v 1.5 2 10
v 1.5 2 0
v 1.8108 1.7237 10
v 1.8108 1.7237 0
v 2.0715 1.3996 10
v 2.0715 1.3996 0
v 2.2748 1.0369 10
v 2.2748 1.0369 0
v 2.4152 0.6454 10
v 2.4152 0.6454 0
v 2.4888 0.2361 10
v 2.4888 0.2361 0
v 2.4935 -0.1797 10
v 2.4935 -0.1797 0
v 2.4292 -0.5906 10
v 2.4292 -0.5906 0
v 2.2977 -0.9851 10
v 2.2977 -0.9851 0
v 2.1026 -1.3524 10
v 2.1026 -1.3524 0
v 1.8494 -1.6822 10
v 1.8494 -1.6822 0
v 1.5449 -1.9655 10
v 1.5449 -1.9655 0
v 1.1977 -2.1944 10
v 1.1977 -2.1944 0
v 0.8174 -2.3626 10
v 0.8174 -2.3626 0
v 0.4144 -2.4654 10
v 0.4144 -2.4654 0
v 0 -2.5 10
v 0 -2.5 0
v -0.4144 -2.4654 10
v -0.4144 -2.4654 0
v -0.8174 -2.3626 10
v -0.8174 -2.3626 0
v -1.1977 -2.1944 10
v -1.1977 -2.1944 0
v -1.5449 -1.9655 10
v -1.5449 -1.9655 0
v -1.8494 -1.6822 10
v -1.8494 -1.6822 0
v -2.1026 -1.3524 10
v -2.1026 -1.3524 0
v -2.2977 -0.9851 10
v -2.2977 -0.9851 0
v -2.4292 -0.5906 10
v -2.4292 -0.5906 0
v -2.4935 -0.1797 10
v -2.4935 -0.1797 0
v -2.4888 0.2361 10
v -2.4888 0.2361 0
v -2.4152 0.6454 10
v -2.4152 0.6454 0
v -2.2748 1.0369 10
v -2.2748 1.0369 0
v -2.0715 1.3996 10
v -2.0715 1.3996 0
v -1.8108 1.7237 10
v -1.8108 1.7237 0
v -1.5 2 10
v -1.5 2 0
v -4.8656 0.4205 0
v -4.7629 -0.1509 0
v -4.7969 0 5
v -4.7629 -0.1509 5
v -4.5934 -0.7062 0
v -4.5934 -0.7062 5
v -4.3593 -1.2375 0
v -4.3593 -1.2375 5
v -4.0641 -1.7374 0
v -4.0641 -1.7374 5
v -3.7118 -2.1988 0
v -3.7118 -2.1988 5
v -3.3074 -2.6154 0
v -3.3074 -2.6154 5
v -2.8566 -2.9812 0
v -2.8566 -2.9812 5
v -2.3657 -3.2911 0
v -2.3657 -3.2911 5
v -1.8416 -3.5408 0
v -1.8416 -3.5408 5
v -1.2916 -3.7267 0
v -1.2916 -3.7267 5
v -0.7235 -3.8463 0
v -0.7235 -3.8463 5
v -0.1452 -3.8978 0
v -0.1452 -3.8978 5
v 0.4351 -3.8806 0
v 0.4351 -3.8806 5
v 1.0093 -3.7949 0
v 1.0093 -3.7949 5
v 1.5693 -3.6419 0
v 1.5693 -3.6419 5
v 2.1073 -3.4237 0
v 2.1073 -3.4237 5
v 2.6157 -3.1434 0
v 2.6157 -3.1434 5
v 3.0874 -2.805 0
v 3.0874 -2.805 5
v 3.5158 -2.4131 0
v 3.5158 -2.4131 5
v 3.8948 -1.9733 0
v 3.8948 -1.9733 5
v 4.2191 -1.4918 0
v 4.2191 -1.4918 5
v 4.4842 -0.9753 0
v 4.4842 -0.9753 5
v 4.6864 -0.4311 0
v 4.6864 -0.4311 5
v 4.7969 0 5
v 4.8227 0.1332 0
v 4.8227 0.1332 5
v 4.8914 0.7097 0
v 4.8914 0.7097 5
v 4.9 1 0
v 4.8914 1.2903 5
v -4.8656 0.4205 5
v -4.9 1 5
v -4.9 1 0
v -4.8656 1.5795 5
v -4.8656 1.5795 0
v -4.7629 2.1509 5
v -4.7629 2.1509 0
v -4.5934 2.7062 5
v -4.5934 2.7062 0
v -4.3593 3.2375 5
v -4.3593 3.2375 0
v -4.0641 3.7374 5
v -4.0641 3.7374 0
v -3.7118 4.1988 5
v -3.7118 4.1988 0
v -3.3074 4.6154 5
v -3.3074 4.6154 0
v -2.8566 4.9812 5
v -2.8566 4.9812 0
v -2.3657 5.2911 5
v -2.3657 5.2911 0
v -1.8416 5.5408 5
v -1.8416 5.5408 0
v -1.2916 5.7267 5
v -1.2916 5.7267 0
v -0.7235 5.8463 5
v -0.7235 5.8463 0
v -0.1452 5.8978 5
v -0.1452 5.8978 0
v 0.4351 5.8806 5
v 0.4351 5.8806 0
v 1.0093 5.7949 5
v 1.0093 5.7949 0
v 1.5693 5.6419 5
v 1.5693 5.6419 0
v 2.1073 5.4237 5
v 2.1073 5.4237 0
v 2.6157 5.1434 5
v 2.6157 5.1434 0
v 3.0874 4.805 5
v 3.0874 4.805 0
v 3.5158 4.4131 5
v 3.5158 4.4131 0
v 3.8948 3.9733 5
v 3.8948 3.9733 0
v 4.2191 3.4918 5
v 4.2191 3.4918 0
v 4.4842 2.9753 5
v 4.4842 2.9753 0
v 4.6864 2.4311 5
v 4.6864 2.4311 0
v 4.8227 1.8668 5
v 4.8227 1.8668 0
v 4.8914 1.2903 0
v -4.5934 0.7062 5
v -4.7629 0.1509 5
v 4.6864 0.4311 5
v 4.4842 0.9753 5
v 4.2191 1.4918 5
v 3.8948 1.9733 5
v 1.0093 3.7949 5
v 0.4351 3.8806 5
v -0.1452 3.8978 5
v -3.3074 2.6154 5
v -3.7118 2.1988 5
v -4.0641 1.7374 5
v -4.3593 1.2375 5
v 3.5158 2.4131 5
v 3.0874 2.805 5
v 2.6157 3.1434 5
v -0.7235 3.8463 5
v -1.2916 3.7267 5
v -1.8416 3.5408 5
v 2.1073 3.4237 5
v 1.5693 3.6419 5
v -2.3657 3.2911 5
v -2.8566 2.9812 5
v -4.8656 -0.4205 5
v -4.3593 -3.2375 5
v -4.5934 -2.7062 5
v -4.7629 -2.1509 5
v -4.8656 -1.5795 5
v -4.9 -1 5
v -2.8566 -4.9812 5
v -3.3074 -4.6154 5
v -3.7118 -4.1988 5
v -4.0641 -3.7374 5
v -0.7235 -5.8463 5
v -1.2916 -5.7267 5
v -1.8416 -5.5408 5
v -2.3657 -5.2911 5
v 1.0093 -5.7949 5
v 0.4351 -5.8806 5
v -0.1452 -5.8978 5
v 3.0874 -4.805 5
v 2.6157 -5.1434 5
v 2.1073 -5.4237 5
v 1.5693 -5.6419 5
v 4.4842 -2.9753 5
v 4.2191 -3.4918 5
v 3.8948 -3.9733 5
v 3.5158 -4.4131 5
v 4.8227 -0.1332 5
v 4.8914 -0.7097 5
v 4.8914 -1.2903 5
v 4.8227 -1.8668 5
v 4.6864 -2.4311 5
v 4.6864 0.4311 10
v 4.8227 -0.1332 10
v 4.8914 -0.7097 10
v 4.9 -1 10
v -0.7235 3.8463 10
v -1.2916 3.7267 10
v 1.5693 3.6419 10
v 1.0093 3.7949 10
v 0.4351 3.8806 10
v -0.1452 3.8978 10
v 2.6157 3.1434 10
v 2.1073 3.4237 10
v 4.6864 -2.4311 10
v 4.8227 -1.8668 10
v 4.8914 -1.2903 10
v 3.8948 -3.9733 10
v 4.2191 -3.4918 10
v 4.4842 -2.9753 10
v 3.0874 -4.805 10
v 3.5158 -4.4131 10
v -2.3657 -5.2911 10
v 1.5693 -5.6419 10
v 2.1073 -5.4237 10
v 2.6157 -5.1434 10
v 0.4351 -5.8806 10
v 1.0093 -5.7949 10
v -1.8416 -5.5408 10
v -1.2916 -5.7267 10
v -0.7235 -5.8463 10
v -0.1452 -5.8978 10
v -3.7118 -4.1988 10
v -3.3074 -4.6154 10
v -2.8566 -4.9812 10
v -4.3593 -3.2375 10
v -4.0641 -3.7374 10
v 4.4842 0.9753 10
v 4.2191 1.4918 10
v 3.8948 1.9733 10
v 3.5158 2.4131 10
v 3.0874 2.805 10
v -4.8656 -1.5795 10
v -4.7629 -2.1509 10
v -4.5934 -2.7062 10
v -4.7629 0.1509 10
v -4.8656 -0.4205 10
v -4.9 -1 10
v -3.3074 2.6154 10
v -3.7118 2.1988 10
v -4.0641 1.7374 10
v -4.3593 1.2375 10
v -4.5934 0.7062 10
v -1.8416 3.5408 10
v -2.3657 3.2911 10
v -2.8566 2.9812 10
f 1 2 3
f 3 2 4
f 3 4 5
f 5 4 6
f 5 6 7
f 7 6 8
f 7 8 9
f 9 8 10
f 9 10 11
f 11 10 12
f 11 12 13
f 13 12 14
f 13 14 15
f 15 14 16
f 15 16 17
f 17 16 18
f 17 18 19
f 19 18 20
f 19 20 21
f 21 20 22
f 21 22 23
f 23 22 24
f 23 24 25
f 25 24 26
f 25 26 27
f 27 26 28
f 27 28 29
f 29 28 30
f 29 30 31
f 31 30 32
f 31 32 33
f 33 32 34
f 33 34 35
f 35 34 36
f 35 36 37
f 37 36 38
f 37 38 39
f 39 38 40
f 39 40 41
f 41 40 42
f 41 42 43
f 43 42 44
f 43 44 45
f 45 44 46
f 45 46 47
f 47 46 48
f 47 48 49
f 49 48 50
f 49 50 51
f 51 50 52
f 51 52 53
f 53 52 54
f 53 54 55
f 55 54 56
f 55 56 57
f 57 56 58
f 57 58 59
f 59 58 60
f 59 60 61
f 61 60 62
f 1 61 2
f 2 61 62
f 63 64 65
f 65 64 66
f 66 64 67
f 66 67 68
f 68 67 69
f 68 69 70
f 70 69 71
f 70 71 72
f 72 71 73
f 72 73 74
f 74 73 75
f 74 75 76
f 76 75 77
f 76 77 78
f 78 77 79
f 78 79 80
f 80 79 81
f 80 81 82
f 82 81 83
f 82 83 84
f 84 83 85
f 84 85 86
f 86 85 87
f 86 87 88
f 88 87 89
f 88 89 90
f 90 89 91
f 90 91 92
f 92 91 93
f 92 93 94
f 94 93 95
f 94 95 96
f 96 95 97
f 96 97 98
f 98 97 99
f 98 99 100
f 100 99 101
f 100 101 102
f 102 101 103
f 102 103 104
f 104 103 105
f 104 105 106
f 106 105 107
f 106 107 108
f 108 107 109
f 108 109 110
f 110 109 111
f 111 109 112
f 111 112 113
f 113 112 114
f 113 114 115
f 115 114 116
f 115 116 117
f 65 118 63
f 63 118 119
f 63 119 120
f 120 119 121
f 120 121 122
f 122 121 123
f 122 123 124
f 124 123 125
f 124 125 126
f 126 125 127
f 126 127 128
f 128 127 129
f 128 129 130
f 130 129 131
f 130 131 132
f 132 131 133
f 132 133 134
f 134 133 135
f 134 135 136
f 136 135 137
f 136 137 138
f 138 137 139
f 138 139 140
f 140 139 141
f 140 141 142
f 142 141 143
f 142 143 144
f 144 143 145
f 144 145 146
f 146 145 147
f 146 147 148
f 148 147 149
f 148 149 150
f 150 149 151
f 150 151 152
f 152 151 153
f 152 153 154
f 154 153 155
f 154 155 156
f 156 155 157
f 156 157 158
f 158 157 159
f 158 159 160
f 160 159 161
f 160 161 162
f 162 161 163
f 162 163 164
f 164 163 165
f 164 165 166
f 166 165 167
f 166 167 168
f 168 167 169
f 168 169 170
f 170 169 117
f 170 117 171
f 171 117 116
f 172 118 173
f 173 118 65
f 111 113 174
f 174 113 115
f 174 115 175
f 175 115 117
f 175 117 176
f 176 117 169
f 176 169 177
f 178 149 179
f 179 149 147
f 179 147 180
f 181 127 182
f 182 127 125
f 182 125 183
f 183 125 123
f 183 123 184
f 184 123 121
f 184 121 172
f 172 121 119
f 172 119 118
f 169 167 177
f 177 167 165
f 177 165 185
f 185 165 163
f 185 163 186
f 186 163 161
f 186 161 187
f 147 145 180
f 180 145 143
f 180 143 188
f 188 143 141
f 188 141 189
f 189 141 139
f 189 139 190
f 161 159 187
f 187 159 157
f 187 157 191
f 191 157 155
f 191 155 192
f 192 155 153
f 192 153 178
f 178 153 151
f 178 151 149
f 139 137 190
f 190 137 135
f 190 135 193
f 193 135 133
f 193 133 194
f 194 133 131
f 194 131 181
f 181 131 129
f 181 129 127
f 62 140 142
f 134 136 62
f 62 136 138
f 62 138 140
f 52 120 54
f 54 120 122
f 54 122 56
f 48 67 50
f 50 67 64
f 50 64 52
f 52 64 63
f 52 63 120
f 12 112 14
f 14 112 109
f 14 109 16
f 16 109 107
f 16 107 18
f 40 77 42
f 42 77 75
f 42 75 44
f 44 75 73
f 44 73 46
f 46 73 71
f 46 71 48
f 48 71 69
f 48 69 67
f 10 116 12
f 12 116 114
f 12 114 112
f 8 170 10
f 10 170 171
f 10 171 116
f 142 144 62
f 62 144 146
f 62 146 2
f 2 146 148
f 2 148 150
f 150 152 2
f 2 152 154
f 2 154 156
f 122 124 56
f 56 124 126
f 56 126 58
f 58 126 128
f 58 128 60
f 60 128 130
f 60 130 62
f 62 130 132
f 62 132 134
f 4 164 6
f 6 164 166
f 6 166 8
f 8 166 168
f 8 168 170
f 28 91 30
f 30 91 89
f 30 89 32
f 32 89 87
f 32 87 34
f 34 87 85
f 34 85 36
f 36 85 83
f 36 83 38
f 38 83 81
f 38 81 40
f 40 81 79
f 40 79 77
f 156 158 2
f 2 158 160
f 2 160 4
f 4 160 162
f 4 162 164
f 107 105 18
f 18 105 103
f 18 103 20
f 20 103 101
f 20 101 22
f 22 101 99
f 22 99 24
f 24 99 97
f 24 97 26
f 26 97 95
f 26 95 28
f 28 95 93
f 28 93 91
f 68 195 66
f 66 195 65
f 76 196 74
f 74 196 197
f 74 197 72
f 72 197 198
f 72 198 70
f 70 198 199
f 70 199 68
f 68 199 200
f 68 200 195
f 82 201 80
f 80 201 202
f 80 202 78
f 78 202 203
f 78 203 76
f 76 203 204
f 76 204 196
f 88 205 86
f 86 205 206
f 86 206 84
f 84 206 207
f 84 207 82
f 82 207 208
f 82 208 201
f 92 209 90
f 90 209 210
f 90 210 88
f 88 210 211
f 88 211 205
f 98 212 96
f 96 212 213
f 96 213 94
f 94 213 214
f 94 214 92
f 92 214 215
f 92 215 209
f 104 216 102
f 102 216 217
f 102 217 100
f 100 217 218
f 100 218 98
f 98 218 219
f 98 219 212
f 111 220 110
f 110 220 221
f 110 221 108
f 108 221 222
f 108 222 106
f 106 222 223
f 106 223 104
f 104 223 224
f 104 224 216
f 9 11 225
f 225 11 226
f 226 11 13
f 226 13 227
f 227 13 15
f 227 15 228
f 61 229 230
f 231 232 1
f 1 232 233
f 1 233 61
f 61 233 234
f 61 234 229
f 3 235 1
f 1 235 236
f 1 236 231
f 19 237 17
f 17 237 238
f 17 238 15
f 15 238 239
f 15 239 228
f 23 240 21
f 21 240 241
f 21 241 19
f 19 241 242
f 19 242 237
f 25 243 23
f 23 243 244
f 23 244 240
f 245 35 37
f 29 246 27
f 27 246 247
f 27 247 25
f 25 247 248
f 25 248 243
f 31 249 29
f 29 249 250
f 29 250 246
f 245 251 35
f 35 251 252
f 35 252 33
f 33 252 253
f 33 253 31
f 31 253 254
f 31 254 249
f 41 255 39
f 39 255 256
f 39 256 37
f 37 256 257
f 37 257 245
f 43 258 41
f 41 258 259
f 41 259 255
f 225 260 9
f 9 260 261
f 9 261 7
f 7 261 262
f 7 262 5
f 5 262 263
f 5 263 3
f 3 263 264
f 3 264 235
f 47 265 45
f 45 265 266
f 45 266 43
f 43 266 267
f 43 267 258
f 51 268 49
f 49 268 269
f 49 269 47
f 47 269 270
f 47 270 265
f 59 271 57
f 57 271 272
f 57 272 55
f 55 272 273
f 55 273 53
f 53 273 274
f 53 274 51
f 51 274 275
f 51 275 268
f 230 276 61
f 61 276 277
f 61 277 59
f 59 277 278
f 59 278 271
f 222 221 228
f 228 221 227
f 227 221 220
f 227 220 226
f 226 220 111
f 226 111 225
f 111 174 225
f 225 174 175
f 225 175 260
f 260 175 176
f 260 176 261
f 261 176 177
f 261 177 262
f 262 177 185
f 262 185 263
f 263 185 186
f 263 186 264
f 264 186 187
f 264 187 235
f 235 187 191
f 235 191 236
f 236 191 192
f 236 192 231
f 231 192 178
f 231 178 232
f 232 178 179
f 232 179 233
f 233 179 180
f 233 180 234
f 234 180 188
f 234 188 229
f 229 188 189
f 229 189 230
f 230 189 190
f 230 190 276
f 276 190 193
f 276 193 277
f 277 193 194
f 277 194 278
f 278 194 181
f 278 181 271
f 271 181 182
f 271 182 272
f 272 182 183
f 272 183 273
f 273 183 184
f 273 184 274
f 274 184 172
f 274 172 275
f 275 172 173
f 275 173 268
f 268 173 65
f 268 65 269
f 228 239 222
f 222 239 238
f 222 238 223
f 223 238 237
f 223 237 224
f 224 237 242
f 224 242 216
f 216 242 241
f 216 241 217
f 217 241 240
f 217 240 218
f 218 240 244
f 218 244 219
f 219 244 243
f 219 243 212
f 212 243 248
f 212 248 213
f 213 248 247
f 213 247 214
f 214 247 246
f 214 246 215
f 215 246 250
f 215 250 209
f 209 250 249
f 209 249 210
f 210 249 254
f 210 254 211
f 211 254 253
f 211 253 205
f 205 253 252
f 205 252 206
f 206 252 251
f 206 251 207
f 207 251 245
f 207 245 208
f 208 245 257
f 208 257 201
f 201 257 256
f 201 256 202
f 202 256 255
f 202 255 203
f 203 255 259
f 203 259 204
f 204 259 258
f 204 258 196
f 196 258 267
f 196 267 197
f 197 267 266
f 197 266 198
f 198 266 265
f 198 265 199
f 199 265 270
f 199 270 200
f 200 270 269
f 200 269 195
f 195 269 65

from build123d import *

# Parameters (mm, degrees)
ESQUISSE1_R        = 4.9
BOSS_EXTRU_1_DEPTH = 5
ESQUISSE2_R        = 4.9
BOSS_EXTRU_2_DEPTH = 5


with BuildPart() as part:
    # Esquisse1 → Boss.-Extru.1 (new body)
    with BuildSketch(Plane.XY):
        with Locations((0, 1)):
            Circle(ESQUISSE1_R)
        with BuildLine():
            Line((-1.5, 2), (1.5, 2))
            ThreePointArc((1.5, 2), (0, -2.5), (-1.5, 2))
        make_face(mode=Mode.SUBTRACT)
    extrude(amount=BOSS_EXTRU_1_DEPTH)

    # Esquisse2 → Boss.-Extru.2 (add)
    with BuildSketch(Plane.XY.offset(5)):
        with Locations(Location((0, -1, 0), (0, 0, 168.224256014))):
            Circle(ESQUISSE2_R)
        with BuildLine():
            Line((-1.5, 2), (1.5, 2))
            ThreePointArc((1.5, 2), (0, -2.5), (-1.5, 2))
        make_face(mode=Mode.SUBTRACT)
    extrude(amount=BOSS_EXTRU_2_DEPTH)


solid = part.part
